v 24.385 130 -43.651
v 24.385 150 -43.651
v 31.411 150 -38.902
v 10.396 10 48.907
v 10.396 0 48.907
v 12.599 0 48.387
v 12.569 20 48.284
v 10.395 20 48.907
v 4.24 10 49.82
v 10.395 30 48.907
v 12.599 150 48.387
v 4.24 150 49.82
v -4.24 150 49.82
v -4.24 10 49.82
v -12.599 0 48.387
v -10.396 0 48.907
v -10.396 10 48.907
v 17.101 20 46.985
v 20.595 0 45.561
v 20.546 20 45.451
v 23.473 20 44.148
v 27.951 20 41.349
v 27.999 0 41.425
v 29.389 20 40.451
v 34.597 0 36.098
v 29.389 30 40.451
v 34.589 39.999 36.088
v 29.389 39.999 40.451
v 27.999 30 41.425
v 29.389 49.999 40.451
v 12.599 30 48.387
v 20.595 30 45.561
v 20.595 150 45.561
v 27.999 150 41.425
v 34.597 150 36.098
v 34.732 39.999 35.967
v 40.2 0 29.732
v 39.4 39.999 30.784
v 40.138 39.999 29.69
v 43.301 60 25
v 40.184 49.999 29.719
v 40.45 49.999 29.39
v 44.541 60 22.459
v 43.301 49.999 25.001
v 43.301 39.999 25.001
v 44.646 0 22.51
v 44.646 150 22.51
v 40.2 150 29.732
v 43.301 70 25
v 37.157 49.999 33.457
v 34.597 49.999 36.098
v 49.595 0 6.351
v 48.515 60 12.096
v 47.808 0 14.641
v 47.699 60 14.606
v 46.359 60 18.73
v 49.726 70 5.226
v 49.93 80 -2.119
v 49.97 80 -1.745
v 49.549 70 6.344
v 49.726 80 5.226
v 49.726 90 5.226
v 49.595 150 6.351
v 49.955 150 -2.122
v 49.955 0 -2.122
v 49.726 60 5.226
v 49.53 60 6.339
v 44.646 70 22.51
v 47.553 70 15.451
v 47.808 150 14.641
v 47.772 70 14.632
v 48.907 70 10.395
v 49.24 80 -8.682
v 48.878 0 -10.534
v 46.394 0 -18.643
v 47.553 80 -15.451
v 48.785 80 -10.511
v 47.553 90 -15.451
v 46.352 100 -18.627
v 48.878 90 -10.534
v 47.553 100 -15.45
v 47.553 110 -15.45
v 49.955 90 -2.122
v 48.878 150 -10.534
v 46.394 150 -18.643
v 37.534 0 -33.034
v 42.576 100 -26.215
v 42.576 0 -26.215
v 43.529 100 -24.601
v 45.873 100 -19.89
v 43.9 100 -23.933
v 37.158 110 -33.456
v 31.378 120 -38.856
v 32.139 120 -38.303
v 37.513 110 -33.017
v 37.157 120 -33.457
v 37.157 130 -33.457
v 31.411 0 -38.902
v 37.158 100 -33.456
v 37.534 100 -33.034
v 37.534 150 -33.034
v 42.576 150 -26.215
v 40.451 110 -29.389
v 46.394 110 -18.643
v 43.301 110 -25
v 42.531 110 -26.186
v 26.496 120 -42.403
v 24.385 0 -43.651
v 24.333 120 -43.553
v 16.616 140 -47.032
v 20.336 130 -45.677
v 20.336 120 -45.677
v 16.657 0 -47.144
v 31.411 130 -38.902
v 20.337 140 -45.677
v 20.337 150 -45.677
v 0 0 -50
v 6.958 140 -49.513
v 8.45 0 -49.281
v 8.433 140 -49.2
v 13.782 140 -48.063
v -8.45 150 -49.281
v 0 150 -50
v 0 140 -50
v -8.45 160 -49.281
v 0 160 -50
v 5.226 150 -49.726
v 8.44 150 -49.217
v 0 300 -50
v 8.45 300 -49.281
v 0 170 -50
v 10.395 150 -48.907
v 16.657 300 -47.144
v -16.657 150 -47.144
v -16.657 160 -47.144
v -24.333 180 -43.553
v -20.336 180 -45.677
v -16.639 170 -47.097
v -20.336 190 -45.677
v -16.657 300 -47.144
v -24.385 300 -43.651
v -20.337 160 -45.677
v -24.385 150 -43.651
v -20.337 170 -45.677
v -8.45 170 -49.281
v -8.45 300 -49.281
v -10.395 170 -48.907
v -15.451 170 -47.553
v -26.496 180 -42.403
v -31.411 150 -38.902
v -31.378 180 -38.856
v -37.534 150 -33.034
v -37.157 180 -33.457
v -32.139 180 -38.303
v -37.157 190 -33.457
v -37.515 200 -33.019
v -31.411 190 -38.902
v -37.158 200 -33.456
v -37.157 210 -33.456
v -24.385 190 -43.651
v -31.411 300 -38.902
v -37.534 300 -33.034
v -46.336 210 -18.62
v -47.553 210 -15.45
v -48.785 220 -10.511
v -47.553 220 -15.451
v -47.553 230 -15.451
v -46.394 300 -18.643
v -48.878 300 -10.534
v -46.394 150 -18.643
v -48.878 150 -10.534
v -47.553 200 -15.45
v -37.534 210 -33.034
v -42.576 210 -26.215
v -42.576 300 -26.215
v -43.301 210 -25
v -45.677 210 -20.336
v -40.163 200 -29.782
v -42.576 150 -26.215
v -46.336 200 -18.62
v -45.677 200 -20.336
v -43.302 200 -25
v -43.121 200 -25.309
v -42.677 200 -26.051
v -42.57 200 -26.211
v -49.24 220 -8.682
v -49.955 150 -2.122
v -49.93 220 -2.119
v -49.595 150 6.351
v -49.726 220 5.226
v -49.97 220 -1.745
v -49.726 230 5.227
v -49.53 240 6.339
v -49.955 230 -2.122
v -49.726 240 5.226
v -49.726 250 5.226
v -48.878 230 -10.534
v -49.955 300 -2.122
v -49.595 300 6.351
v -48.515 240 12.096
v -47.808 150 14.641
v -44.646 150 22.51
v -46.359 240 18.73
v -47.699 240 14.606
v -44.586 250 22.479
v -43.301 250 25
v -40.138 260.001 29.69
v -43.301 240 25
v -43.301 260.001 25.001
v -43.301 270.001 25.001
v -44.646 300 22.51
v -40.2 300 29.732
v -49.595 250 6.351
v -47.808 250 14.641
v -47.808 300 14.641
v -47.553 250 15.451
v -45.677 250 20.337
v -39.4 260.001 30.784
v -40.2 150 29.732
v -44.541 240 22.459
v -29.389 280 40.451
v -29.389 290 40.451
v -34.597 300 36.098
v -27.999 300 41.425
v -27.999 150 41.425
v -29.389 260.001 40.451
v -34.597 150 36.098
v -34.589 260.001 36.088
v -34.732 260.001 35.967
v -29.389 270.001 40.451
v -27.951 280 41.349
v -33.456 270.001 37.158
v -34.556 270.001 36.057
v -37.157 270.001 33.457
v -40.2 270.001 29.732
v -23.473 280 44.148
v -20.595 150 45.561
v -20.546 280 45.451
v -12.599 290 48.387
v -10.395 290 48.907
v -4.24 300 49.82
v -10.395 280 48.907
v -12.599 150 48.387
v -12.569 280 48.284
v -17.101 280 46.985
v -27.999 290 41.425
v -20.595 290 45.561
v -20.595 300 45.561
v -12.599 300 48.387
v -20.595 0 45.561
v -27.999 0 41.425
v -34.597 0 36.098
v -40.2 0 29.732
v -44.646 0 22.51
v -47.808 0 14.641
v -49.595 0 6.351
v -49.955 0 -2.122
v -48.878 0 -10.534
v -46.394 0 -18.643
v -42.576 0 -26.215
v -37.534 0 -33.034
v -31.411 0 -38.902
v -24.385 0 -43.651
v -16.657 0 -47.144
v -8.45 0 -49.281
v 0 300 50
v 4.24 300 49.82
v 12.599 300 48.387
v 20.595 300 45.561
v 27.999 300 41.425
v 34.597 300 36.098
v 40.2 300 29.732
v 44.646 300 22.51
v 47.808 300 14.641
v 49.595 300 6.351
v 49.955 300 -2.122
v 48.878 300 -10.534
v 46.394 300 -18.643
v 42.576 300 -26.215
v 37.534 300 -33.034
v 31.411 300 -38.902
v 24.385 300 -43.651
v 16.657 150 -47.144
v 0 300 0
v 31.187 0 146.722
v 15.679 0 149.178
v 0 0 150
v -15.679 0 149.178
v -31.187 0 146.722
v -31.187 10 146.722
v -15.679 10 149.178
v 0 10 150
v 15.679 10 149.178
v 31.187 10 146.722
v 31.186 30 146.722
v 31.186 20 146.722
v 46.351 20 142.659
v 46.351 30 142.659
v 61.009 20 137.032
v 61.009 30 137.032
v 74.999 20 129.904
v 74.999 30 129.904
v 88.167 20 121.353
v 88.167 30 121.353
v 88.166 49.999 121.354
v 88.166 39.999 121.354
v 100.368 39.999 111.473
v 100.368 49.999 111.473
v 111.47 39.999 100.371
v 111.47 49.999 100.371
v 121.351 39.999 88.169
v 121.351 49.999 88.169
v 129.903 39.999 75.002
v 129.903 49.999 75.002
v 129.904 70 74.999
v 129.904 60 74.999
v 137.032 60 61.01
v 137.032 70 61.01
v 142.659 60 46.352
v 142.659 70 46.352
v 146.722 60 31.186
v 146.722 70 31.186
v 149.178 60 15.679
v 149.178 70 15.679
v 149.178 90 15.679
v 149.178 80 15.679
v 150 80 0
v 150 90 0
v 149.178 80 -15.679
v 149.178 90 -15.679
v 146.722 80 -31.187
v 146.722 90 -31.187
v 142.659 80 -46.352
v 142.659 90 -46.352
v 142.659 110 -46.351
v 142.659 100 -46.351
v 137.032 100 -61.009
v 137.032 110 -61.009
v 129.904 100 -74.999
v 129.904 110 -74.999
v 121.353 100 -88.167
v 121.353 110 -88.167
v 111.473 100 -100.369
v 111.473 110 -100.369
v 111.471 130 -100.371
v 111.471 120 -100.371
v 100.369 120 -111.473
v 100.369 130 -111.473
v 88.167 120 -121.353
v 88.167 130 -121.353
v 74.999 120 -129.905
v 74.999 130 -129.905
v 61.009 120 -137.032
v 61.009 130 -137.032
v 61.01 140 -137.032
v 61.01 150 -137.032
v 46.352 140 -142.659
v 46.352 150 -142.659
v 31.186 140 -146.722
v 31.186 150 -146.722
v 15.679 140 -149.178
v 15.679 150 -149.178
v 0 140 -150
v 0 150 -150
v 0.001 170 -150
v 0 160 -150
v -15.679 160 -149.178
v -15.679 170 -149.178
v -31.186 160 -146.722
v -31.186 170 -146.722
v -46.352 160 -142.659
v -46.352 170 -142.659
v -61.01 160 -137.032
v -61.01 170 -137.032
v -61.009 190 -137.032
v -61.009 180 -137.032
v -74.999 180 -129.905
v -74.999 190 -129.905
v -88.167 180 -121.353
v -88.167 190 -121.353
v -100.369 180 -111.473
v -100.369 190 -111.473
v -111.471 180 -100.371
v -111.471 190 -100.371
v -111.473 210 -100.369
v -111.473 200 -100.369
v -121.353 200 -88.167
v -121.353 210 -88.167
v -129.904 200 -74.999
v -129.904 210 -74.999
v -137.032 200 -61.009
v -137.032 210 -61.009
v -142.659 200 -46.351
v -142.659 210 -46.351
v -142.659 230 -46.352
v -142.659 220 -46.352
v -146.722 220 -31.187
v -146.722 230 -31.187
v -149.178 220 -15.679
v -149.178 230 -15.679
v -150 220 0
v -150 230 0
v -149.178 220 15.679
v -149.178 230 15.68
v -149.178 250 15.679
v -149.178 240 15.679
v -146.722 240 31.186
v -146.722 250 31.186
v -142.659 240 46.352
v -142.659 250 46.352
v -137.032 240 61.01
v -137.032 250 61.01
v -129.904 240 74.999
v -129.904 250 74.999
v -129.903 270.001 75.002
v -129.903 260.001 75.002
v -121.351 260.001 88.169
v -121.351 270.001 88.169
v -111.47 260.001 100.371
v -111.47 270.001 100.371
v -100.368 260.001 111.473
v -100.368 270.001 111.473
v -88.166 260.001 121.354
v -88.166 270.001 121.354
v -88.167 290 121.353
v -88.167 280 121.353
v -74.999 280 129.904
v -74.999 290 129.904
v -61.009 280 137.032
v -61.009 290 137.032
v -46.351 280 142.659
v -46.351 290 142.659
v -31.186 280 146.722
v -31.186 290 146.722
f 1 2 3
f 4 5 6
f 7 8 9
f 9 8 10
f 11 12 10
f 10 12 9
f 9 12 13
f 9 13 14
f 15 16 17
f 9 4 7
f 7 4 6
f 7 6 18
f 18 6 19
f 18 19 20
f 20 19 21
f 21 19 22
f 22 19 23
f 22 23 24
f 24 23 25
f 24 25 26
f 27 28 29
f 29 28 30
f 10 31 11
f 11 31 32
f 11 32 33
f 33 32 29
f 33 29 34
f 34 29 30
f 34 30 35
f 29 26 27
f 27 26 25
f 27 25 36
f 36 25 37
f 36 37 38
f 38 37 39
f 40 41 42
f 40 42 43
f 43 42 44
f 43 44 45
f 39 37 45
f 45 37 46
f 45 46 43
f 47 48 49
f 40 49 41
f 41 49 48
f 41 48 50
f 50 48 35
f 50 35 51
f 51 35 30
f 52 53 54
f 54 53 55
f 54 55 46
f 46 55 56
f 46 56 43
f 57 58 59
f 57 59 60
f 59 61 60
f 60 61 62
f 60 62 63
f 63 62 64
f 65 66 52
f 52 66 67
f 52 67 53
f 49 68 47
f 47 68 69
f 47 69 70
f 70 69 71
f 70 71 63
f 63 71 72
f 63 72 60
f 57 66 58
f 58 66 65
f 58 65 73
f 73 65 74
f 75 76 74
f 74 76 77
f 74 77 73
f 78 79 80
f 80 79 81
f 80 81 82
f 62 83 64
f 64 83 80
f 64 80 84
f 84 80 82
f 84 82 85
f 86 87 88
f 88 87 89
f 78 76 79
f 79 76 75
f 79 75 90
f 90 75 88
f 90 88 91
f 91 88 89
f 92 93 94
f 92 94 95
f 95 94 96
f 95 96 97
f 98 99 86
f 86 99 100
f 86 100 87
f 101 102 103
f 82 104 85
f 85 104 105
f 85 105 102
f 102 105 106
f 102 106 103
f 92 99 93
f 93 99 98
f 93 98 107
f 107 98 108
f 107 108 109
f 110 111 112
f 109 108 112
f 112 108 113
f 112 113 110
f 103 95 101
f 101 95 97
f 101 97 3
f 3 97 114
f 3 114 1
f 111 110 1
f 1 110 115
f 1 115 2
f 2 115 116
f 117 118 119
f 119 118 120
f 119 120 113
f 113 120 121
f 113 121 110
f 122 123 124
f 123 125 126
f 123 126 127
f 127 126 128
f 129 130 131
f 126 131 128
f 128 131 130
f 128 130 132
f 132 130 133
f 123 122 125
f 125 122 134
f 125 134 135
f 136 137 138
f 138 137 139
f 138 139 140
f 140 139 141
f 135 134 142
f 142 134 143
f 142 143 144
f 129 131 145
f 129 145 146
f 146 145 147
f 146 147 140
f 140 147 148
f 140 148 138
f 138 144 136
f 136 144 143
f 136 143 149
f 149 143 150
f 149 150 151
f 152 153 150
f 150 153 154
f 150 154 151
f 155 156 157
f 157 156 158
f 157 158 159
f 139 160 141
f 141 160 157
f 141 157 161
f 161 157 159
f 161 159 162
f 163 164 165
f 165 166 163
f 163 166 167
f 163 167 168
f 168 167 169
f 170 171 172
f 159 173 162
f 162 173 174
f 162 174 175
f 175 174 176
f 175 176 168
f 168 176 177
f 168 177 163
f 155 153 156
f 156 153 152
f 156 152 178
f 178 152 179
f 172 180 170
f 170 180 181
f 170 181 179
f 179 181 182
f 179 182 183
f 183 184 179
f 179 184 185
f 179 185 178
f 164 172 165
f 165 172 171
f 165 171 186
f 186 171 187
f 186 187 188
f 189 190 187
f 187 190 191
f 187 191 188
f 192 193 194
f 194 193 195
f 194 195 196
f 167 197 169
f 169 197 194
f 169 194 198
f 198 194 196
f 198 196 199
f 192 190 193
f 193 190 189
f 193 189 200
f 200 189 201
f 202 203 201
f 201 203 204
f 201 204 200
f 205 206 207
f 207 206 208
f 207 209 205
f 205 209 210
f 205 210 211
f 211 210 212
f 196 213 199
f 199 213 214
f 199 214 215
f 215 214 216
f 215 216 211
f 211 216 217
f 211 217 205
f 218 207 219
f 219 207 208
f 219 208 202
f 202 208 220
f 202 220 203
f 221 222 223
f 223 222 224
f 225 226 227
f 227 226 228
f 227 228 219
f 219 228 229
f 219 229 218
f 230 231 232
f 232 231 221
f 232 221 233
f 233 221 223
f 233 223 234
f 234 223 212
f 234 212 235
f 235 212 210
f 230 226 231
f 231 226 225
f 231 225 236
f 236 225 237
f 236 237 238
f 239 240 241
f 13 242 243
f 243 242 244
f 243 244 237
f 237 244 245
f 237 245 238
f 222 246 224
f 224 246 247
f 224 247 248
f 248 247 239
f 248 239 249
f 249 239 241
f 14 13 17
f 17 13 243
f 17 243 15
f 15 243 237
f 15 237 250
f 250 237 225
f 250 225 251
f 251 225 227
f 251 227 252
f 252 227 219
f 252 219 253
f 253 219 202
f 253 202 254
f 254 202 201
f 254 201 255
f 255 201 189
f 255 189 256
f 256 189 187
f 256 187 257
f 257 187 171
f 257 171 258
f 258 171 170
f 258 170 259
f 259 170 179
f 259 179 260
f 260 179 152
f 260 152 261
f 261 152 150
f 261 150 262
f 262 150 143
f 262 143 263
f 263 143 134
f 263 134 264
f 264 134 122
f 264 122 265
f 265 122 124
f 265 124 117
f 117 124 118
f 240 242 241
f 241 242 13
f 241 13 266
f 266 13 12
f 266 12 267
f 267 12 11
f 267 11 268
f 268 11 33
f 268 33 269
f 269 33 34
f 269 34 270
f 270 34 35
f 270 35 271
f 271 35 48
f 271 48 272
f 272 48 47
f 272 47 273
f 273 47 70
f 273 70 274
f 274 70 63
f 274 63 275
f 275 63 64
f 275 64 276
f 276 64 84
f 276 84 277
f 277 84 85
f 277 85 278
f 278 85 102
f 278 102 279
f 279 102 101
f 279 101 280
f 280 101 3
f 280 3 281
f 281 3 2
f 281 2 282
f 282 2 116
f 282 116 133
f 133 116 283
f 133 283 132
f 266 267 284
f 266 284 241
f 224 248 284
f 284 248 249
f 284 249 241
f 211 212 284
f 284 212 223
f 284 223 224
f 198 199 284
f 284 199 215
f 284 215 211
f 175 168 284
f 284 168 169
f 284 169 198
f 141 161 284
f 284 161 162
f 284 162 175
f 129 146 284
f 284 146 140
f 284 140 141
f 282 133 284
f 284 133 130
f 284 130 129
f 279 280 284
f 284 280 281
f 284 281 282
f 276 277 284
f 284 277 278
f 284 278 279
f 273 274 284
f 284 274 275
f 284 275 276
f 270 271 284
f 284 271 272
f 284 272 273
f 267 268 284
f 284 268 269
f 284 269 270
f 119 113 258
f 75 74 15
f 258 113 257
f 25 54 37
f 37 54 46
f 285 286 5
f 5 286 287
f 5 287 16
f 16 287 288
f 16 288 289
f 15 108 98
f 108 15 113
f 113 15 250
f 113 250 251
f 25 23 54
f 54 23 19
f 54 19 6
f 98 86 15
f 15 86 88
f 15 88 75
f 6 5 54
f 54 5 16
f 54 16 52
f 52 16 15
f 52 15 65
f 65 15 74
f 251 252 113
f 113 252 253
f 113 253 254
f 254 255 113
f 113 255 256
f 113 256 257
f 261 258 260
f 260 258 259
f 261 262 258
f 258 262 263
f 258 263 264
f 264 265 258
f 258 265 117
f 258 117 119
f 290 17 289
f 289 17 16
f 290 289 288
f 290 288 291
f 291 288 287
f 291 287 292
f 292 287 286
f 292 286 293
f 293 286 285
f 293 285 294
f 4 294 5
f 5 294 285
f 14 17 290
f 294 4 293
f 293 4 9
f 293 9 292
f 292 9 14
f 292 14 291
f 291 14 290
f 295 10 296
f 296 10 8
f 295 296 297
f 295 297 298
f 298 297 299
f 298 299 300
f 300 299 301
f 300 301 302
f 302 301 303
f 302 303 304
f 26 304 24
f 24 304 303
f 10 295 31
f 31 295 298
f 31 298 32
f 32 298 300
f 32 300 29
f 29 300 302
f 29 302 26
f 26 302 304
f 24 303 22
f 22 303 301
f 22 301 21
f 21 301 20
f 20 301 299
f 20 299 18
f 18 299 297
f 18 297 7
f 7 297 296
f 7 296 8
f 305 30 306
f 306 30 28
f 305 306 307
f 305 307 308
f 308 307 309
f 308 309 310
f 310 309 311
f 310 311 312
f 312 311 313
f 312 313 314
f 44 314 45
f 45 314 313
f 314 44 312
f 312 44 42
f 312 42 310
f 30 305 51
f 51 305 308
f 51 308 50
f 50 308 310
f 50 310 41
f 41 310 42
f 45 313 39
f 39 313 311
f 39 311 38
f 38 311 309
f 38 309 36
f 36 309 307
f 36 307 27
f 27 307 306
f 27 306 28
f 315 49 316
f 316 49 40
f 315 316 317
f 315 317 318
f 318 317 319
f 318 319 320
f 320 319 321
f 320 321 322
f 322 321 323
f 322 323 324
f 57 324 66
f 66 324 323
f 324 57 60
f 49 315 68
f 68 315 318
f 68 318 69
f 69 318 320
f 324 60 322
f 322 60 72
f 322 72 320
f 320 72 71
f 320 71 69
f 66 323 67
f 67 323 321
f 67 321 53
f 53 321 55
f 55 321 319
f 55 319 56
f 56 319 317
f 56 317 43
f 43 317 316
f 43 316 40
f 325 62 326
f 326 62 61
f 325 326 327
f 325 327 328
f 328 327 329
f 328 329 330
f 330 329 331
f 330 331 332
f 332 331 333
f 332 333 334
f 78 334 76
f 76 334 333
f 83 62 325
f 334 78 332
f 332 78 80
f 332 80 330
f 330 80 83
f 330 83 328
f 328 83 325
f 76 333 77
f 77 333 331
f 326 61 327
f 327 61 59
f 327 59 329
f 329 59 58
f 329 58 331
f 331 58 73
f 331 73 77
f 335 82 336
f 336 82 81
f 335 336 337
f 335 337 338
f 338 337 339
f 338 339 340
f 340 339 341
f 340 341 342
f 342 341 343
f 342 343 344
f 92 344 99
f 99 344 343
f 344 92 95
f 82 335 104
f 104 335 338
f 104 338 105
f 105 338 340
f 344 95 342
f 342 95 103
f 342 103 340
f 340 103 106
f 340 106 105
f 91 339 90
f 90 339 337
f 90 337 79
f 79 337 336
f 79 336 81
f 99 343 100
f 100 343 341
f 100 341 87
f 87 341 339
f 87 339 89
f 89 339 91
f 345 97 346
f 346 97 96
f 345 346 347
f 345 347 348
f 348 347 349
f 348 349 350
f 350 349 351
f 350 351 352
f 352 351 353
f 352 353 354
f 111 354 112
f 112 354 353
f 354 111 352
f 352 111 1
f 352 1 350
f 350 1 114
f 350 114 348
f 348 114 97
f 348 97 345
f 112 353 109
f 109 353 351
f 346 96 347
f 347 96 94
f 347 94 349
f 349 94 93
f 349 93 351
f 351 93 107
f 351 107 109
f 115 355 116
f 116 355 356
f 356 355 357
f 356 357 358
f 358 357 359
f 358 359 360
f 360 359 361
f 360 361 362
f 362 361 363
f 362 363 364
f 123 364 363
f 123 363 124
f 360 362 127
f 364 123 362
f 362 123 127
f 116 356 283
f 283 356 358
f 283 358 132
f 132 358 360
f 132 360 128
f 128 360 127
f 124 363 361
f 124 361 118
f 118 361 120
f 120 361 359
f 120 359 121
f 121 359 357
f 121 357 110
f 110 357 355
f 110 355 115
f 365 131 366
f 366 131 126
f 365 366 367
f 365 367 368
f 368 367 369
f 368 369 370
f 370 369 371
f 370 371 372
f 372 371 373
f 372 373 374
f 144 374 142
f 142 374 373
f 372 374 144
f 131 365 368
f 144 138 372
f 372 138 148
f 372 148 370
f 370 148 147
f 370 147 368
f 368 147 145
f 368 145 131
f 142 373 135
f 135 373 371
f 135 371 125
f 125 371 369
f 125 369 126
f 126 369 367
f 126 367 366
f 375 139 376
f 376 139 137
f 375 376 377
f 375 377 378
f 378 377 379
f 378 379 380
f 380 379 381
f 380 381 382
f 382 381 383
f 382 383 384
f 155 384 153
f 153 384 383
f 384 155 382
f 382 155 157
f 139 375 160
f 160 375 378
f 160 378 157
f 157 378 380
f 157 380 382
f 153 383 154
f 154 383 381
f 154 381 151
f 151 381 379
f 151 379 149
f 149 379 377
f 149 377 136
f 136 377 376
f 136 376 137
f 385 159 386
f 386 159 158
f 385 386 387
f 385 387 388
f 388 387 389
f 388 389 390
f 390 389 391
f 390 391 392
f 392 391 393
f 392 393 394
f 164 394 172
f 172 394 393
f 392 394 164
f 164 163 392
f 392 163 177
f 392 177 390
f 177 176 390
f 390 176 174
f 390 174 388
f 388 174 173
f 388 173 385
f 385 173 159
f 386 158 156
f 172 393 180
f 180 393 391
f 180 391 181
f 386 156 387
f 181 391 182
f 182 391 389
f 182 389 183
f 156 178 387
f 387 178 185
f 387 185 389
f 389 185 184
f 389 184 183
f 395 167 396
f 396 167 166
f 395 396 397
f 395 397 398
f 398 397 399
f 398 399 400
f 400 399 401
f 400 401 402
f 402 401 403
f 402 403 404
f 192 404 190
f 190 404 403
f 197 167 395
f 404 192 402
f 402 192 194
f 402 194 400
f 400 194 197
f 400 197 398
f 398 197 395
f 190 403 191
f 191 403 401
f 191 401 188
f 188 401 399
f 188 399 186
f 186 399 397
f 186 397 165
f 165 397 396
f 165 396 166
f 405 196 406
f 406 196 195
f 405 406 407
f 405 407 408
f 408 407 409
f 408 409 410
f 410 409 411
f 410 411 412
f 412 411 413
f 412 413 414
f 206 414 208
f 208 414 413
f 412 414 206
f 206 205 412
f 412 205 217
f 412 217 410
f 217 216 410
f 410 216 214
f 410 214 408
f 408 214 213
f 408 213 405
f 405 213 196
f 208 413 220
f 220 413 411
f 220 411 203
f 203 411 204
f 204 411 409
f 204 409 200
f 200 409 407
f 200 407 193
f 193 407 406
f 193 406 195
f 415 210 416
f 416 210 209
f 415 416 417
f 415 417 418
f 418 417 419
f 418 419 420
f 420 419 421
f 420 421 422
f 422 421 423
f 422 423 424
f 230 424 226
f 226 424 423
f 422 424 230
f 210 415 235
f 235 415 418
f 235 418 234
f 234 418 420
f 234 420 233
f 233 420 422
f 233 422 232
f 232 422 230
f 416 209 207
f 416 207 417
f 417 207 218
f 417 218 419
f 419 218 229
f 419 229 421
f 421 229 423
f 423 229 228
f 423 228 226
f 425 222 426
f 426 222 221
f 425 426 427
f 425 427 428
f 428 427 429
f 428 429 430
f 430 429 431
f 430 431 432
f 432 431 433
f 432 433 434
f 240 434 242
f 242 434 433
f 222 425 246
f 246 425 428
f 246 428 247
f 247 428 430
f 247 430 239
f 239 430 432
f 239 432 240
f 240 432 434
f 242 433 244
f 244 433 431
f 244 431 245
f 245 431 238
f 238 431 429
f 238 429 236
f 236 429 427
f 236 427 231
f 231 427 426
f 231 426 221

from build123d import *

# Parameters (mm, degrees)
SKETCH_1_R      = 50
EXTRUDE_1_DEPTH = 300
EXTRUDE_2_DEPTH = 10


with BuildPart() as part:
    # 草圖1 → 填料-伸長1 (new body)
    with BuildSketch(Plane(origin=(0, 0, 0), x_dir=(1, 0, 0), z_dir=(0, 1, 0))):
        with Locations(Location((0, 0, 0), (0, 0, 270))):
            Circle(SKETCH_1_R)
    extrude(amount=EXTRUDE_1_DEPTH)

    # 草圖7 → 填料-伸長2 (add)
    with BuildSketch(Plane(origin=(0, 0, 0), x_dir=(1, 0, 0), z_dir=(0, 1, 0))):
        with BuildLine():
            Line((-10.395584541, -48.907380037), (-31.186753623, -146.72214011))
            ThreePointArc((-31.186753623, -146.72214011), (0, -150), (31.186753623, -146.72214011))
            Line((31.186753623, -146.72214011), (10.395584541, -48.907380037))
            ThreePointArc((10.395584541, -48.907380037), (0, -50), (-10.395584541, -48.907380037))
        make_face()
    extrude(amount=EXTRUDE_2_DEPTH)

    # 曲線導出複製排列1: read off the stored shape, not the designer's step
    # 曲線導出複製排列1: loft between two sections, ruled curve by curve
    pattern_curve_1_from = [
        Edge.make_three_point_arc((88.166854209, 29.999606099, 121.353229236), (61.00944139, 29.999627457, 137.03228839), (31.185623499, 29.999648814, 146.722378865)),
        Edge.make_line((31.185623499, 29.999648814, 146.722378865), (10.3952123, 29.999634576, 48.907459157)),
        Edge.make_line((29.388954737, 29.999620338, 40.451073403), (88.166854209, 29.999606099, 121.353229236)),
        Edge.make_line((29.388954737, 29.999620338, 40.451073403), (10.3952123, 29.999634576, 48.907459157)),
    ]
    pattern_curve_1_to = [
        Edge.make_three_point_arc((88.166847953, 19.999606099, 121.353232022), (61.009435133, 19.999627457, 137.032291175), (31.185617243, 19.999648814, 146.72238165)),
        Edge.make_line((31.185617243, 19.999648814, 146.72238165), (10.395205748, 19.999634576, 48.90746055)),
        Edge.make_line((29.388949318, 19.999620338, 40.451077341), (88.166847953, 19.999606099, 121.353232022)),
        Edge.make_line((29.388949318, 19.999620338, 40.451077341), (10.395205748, 19.999634576, 48.90746055)),
    ]
    pattern_curve_1 = Solid(Shell([*[Face.make_surface_from_curves(pattern_curve_1_from[k], pattern_curve_1_to[k]) for k in range(4)], Face(Wire(pattern_curve_1_from)), Face(Wire(pattern_curve_1_to))]))
    add(pattern_curve_1)

    # Pattern Curve 1 2: loft between two sections, ruled curve by curve
    pattern_curve_1_2_from = [
        Edge.make_three_point_arc((129.902850728, 49.999428516, 75.001657031), (111.470442269, 49.999387758, 100.371014244), (88.166240206, 49.999347, 121.353676925)),
        Edge.make_line((88.166240206, 49.999347, 121.353676925), (29.388739308, 49.999374172, 40.451229918)),
        Edge.make_line((43.300946766, 49.999401344, 25.000560177), (129.902850728, 49.999428516, 75.001657031)),
        Edge.make_line((43.300946766, 49.999401344, 25.000560177), (29.388739308, 49.999374172, 40.451229918)),
    ]
    pattern_curve_1_2_to = [
        Edge.make_three_point_arc((129.902859473, 39.999428516, 75.001647319), (111.470451014, 39.999387758, 100.371004532), (88.166248951, 39.999347, 121.353667213)),
        Edge.make_line((88.166248951, 39.999347, 121.353667213), (29.38874965, 39.999374172, 40.451222404)),
        Edge.make_line((43.300953158, 39.999401344, 25.000549106), (129.902859473, 39.999428516, 75.001647319)),
        Edge.make_line((43.300953158, 39.999401344, 25.000549106), (29.38874965, 39.999374172, 40.451222404)),
    ]
    pattern_curve_1_2 = Solid(Shell([*[Face.make_surface_from_curves(pattern_curve_1_2_from[k], pattern_curve_1_2_to[k]) for k in range(4)], Face(Wire(pattern_curve_1_2_from)), Face(Wire(pattern_curve_1_2_to))]))
    add(pattern_curve_1_2)

    # Pattern Curve 1 3: loft between two sections, ruled curve by curve
    pattern_curve_1_3_from = [
        Edge.make_three_point_arc((149.178354042, 70.000263463, 15.678583971), (142.658690297, 70.000228957, 46.351894057), (129.904157085, 70.00019445, 74.999404412)),
        Edge.make_line((129.904157085, 70.00019445, 74.999404412), (43.301381423, 70.000217454, 24.999807336)),
        Edge.make_line((49.726118022, 70.000240459, 5.226201913), (149.178354042, 70.000263463, 15.678583971)),
        Edge.make_line((49.726118022, 70.000240459, 5.226201913), (43.301381423, 70.000217454, 24.999807336)),
    ]
    pattern_curve_1_3_to = [
        Edge.make_three_point_arc((149.178357461, 60.000263463, 15.678573448), (142.658693716, 60.000228957, 46.351883534), (129.904160504, 60.00019445, 74.999393888)),
        Edge.make_line((129.904160504, 60.00019445, 74.999393888), (43.301386835, 60.000217454, 24.999797963)),
        Edge.make_line((49.726119154, 60.000240459, 5.226191149), (149.178357461, 60.000263463, 15.678573448)),
        Edge.make_line((49.726119154, 60.000240459, 5.226191149), (43.301386835, 60.000217454, 24.999797963)),
    ]
    pattern_curve_1_3 = Solid(Shell([*[Face.make_surface_from_curves(pattern_curve_1_3_from[k], pattern_curve_1_3_to[k]) for k in range(4)], Face(Wire(pattern_curve_1_3_from)), Face(Wire(pattern_curve_1_3_to))]))
    add(pattern_curve_1_3)

    # Pattern Curve 1 4: loft between two sections, ruled curve by curve
    pattern_curve_1_4_from = [
        Edge.make_three_point_arc((142.658547258, 89.999899948, -46.352339417), (149.178307393, 89.999923711, -15.679049819), (149.178259624, 89.999947474, 15.679489161)),
        Edge.make_line((149.178259624, 89.999947474, 15.679489161), (49.726087586, 89.999931632, 5.226491501)),
        Edge.make_line((47.552847048, 89.99991579, -15.450784368), (142.658547258, 89.999899948, -46.352339417)),
        Edge.make_line((47.552847048, 89.99991579, -15.450784368), (49.726087586, 89.999931632, 5.226491501)),
    ]
    pattern_curve_1_4_to = [
        Edge.make_three_point_arc((142.658548055, 79.999899948, -46.35233184), (149.17830819, 79.999923711, -15.679042242), (149.17826042, 79.999947474, 15.679496739)),
        Edge.make_line((149.17826042, 79.999947474, 15.679496739), (49.726086807, 79.999931632, 5.226498913)),
        Edge.make_line((47.552849352, 79.99991579, -15.45077728), (142.658548055, 79.999899948, -46.35233184)),
        Edge.make_line((47.552849352, 79.99991579, -15.45077728), (49.726086807, 79.999931632, 5.226498913)),
    ]
    pattern_curve_1_4 = Solid(Shell([*[Face.make_surface_from_curves(pattern_curve_1_4_from[k], pattern_curve_1_4_to[k]) for k in range(4)], Face(Wire(pattern_curve_1_4_from)), Face(Wire(pattern_curve_1_4_to))]))
    add(pattern_curve_1_4)

    # Pattern Curve 1 5: loft between two sections, ruled curve by curve
    pattern_curve_1_5_from = [
        Edge.make_three_point_arc((111.472538635, 109.99969912, -100.368677975), (129.904422692, 109.99961853, -74.99893976), (142.658860691, 109.99953794, -46.351387014)),
        Edge.make_line((142.658860691, 109.99953794, -46.351387014), (47.552957068, 109.999591667, -15.450445758)),
        Edge.make_line((37.157525485, 109.999645394, -33.456214667), (111.472538635, 109.99969912, -100.368677975)),
        Edge.make_line((37.157525485, 109.999645394, -33.456214667), (47.552957068, 109.999591667, -15.450445758)),
    ]
    pattern_curve_1_5_to = [
        Edge.make_three_point_arc((111.472525715, 99.99969912, -100.368700354), (129.904409772, 99.99961853, -74.998962139), (142.658847771, 99.99953794, -46.351409393)),
        Edge.make_line((142.658847771, 99.99953794, -46.351409393), (47.552949257, 99.999591667, -15.450469798)),
        Edge.make_line((37.157508572, 99.999645394, -33.456233451), (111.472525715, 99.99969912, -100.368700354)),
        Edge.make_line((37.157508572, 99.999645394, -33.456233451), (47.552949257, 99.999591667, -15.450469798)),
    ]
    pattern_curve_1_5 = Solid(Shell([*[Face.make_surface_from_curves(pattern_curve_1_5_from[k], pattern_curve_1_5_to[k]) for k in range(4)], Face(Wire(pattern_curve_1_5_from)), Face(Wire(pattern_curve_1_5_to))]))
    add(pattern_curve_1_5)

    # Pattern Curve 1 6: loft between two sections, ruled curve by curve
    pattern_curve_1_6_from = [
        Edge.make_three_point_arc((61.009186737, 130.000434016, -137.032403499), (88.166627272, 130.000457764, -121.353392352), (111.470762857, 130.000481511, -100.370655837)),
        Edge.make_line((111.470762857, 130.000481511, -100.370655837), (37.156918022, 130.000465679, -33.456889322)),
        Edge.make_line((20.336390828, 130.000449848, -45.67746937), (61.009186737, 130.000434016, -137.032403499)),
        Edge.make_line((20.336390828, 130.000449848, -45.67746937), (37.156918022, 130.000465679, -33.456889322)),
    ]
    pattern_curve_1_6_to = [
        Edge.make_three_point_arc((61.009192897, 120.000434016, -137.032399023), (88.166633433, 120.000457764, -121.353387877), (111.470769017, 120.000481511, -100.370651362)),
        Edge.make_line((111.470769017, 120.000481511, -100.370651362), (37.156923006, 120.00046568, -33.456883787)),
        Edge.make_line((20.336397632, 120.000449848, -45.677466341), (61.009192897, 120.000434016, -137.032399023)),
        Edge.make_line((20.336397632, 120.000449848, -45.677466341), (37.156923006, 120.00046568, -33.456883787)),
    ]
    pattern_curve_1_6 = Solid(Shell([*[Face.make_surface_from_curves(pattern_curve_1_6_from[k], pattern_curve_1_6_to[k]) for k in range(4)], Face(Wire(pattern_curve_1_6_from)), Face(Wire(pattern_curve_1_6_to))]))
    add(pattern_curve_1_6)

    # Pattern Curve 1 7: loft between two sections, ruled curve by curve
    pattern_curve_1_7_from = [
        Edge.make_three_point_arc((-0.000487877, 150.00018683, -149.999997716), (31.186276641, 150.000152588, -146.722241495), (61.010051692, 150.000118346, -137.032019169)),
        Edge.make_line((61.010051692, 150.000118346, -137.032019169), (20.336690129, 150.000141174, -45.677336116)),
        Edge.make_line((-0.000155466, 150.000164002, -50), (-0.000487877, 150.00018683, -149.999997716)),
        Edge.make_line((-0.000155466, 150.000164002, -50), (20.336690129, 150.000141174, -45.677336116)),
    ]
    pattern_curve_1_7_to = [
        Edge.make_three_point_arc((-0.000498617, 140.00018683, -149.999999999), (31.186265902, 140.000152588, -146.722243778), (61.010040952, 140.000118346, -137.032021451)),
        Edge.make_line((61.010040952, 140.000118346, -137.032021451), (20.336680317, 140.000141174, -45.677340484)),
        Edge.make_line((-0.000166206, 140.000164002, -50), (-0.000498617, 140.00018683, -149.999999999)),
        Edge.make_line((-0.000166206, 140.000164002, -50), (20.336680317, 140.000141174, -45.677340484)),
    ]
    pattern_curve_1_7 = Solid(Shell([*[Face.make_surface_from_curves(pattern_curve_1_7_from[k], pattern_curve_1_7_to[k]) for k in range(4)], Face(Wire(pattern_curve_1_7_from)), Face(Wire(pattern_curve_1_7_to))]))
    add(pattern_curve_1_7)

    # Pattern Curve 1 8: loft between two sections, ruled curve by curve
    pattern_curve_1_8_from = [
        Edge.make_three_point_arc((-61.010030212, 169.999881654, -137.032023734), (-31.186255162, 169.999847412, -146.72224606), (0.000509357, 169.99981317, -150.000002282)),
        Edge.make_line((0.000509357, 169.99981317, -150.000002282), (0.000176945, 169.999835998, -50)),
        Edge.make_line((-20.336670506, 169.999858826, -45.677344852), (-61.010030212, 169.999881654, -137.032023734)),
        Edge.make_line((-20.336670506, 169.999858826, -45.677344852), (0.000176945, 169.999835998, -50)),
    ]
    pattern_curve_1_8_to = [
        Edge.make_three_point_arc((-61.010040952, 159.999881654, -137.032021451), (-31.186265902, 159.999847412, -146.722243778), (0.000498617, 159.99981317, -149.999999999)),
        Edge.make_line((0.000498617, 159.99981317, -149.999999999), (0.000166206, 159.999835998, -50)),
        Edge.make_line((-20.336680317, 159.999858826, -45.677340484), (-61.010040952, 159.999881654, -137.032021451)),
        Edge.make_line((-20.336680317, 159.999858826, -45.677340484), (0.000166206, 159.999835998, -50)),
    ]
    pattern_curve_1_8 = Solid(Shell([*[Face.make_surface_from_curves(pattern_curve_1_8_from[k], pattern_curve_1_8_to[k]) for k in range(4)], Face(Wire(pattern_curve_1_8_from)), Face(Wire(pattern_curve_1_8_to))]))
    add(pattern_curve_1_8)

    # Pattern Curve 1 9: loft between two sections, ruled curve by curve
    pattern_curve_1_9_from = [
        Edge.make_three_point_arc((-111.470775177, 189.999518489, -100.370646886), (-88.166639593, 189.999542236, -121.353383401), (-61.009199058, 189.999565984, -137.032394547)),
        Edge.make_line((-61.009199058, 189.999565984, -137.032394547), (-20.336404437, 189.999550152, -45.677463312)),
        Edge.make_line((-37.15692799, 189.99953432, -33.456878252), (-111.470775177, 189.999518489, -100.370646886)),
        Edge.make_line((-37.15692799, 189.99953432, -33.456878252), (-20.336404437, 189.999550152, -45.677463312)),
    ]
    pattern_curve_1_9_to = [
        Edge.make_three_point_arc((-111.470769017, 179.999518489, -100.370651362), (-88.166633433, 179.999542236, -121.353387877), (-61.009192897, 179.999565984, -137.032399023)),
        Edge.make_line((-61.009192897, 179.999565984, -137.032399023), (-20.336397632, 179.999550152, -45.677466341)),
        Edge.make_line((-37.156923006, 179.99953432, -33.456883787), (-111.470769017, 179.999518489, -100.370651362)),
        Edge.make_line((-37.156923006, 179.99953432, -33.456883787), (-20.336397632, 179.999550152, -45.677466341)),
    ]
    pattern_curve_1_9 = Solid(Shell([*[Face.make_surface_from_curves(pattern_curve_1_9_from[k], pattern_curve_1_9_to[k]) for k in range(4)], Face(Wire(pattern_curve_1_9_from)), Face(Wire(pattern_curve_1_9_to))]))
    add(pattern_curve_1_9)

    # Pattern Curve 1 10: loft between two sections, ruled curve by curve
    pattern_curve_1_10_from = [
        Edge.make_three_point_arc((-142.65883485, 210.000462059, -46.351431772), (-129.904396851, 210.00038147, -74.998984518), (-111.472512795, 210.00030088, -100.368722733)),
        Edge.make_line((-111.472512795, 210.00030088, -100.368722733), (-37.157491659, 210.000354606, -33.456252235)),
        Edge.make_line((-47.552941446, 210.000408333, -15.450493837), (-142.65883485, 210.000462059, -46.351431772)),
        Edge.make_line((-47.552941446, 210.000408333, -15.450493837), (-37.157491659, 210.000354606, -33.456252235)),
    ]
    pattern_curve_1_10_to = [
        Edge.make_three_point_arc((-142.658847771, 200.00046206, -46.351409393), (-129.904409772, 200.00038147, -74.998962139), (-111.472525715, 200.00030088, -100.368700354)),
        Edge.make_line((-111.472525715, 200.00030088, -100.368700354), (-37.157508572, 200.000354606, -33.456233451)),
        Edge.make_line((-47.552949257, 200.000408333, -15.450469798), (-142.658847771, 200.00046206, -46.351409393)),
        Edge.make_line((-47.552949257, 200.000408333, -15.450469798), (-37.157508572, 200.000354606, -33.456233451)),
    ]
    pattern_curve_1_10 = Solid(Shell([*[Face.make_surface_from_curves(pattern_curve_1_10_from[k], pattern_curve_1_10_to[k]) for k in range(4)], Face(Wire(pattern_curve_1_10_from)), Face(Wire(pattern_curve_1_10_to))]))
    add(pattern_curve_1_10)

    # Pattern Curve 1 11: loft between two sections, ruled curve by curve
    pattern_curve_1_11_from = [
        Edge.make_three_point_arc((-149.178261217, 230.000052526, 15.679504316), (-149.178308986, 230.000076289, -15.679034664), (-142.658548851, 230.000100052, -46.352324262)),
        Edge.make_line((-142.658548851, 230.000100052, -46.352324262), (-47.552851655, 230.00008421, -15.450770192)),
        Edge.make_line((-49.726086028, 230.000068368, 5.226506325), (-149.178261217, 230.000052526, 15.679504316)),
        Edge.make_line((-49.726086028, 230.000068368, 5.226506325), (-47.552851655, 230.00008421, -15.450770192)),
    ]
    pattern_curve_1_11_to = [
        Edge.make_three_point_arc((-149.17826042, 220.000052526, 15.679496739), (-149.17830819, 220.000076289, -15.679042242), (-142.658548055, 220.000100052, -46.35233184)),
        Edge.make_line((-142.658548055, 220.000100052, -46.35233184), (-47.552849352, 220.00008421, -15.45077728)),
        Edge.make_line((-49.726086807, 220.000068368, 5.226498913), (-149.17826042, 220.000052526, 15.679496739)),
        Edge.make_line((-49.726086807, 220.000068368, 5.226498913), (-47.552849352, 220.00008421, -15.45077728)),
    ]
    pattern_curve_1_11 = Solid(Shell([*[Face.make_surface_from_curves(pattern_curve_1_11_from[k], pattern_curve_1_11_to[k]) for k in range(4)], Face(Wire(pattern_curve_1_11_from)), Face(Wire(pattern_curve_1_11_to))]))
    add(pattern_curve_1_11)

    # Pattern Curve 1 12: loft between two sections, ruled curve by curve
    pattern_curve_1_12_from = [
        Edge.make_three_point_arc((-129.904163923, 249.99980555, 74.999383365), (-142.658697135, 249.999771043, 46.351873011), (-149.17836088, 249.999736537, 15.678562925)),
        Edge.make_line((-149.17836088, 249.999736537, 15.678562925), (-49.726120285, 249.999759541, 5.226180386)),
        Edge.make_line((-43.301392246, 249.999782546, 24.99978859), (-129.904163923, 249.99980555, 74.999383365)),
        Edge.make_line((-43.301392246, 249.999782546, 24.99978859), (-49.726120285, 249.999759541, 5.226180386)),
    ]
    pattern_curve_1_12_to = [
        Edge.make_three_point_arc((-129.904160504, 239.99980555, 74.999393888), (-142.658693716, 239.999771043, 46.351883534), (-149.178357461, 239.999736537, 15.678573448)),
        Edge.make_line((-149.178357461, 239.999736537, 15.678573448), (-49.726119154, 239.999759541, 5.226191149)),
        Edge.make_line((-43.301386835, 239.999782546, 24.999797963), (-129.904160504, 239.99980555, 74.999393888)),
        Edge.make_line((-43.301386835, 239.999782546, 24.999797963), (-49.726119154, 239.999759541, 5.226191149)),
    ]
    pattern_curve_1_12 = Solid(Shell([*[Face.make_surface_from_curves(pattern_curve_1_12_from[k], pattern_curve_1_12_to[k]) for k in range(4)], Face(Wire(pattern_curve_1_12_from)), Face(Wire(pattern_curve_1_12_to))]))
    add(pattern_curve_1_12)

    # Pattern Curve 1 13: loft between two sections, ruled curve by curve
    pattern_curve_1_13_from = [
        Edge.make_three_point_arc((-88.166257696, 270.000653, 121.3536575), (-111.470459759, 270.000612242, 100.37099482), (-129.902868218, 270.000571484, 75.001637607)),
        Edge.make_line((-129.902868218, 270.000571484, 75.001637607), (-43.30095955, 270.000598656, 25.000538036)),
        Edge.make_line((-29.388759992, 270.000625828, 40.45121489), (-88.166257696, 270.000653, 121.3536575)),
        Edge.make_line((-29.388759992, 270.000625828, 40.45121489), (-43.30095955, 270.000598656, 25.000538036)),
    ]
    pattern_curve_1_13_to = [
        Edge.make_three_point_arc((-88.166248951, 260.000653, 121.353667213), (-111.470451014, 260.000612242, 100.371004532), (-129.902859473, 260.000571484, 75.001647319)),
        Edge.make_line((-129.902859473, 260.000571484, 75.001647319), (-43.300953158, 260.000598656, 25.000549106)),
        Edge.make_line((-29.38874965, 260.000625828, 40.451222404), (-88.166248951, 260.000653, 121.353667213)),
        Edge.make_line((-29.38874965, 260.000625828, 40.451222404), (-43.300953158, 260.000598656, 25.000549106)),
    ]
    pattern_curve_1_13 = Solid(Shell([*[Face.make_surface_from_curves(pattern_curve_1_13_from[k], pattern_curve_1_13_to[k]) for k in range(4)], Face(Wire(pattern_curve_1_13_from)), Face(Wire(pattern_curve_1_13_to))]))
    add(pattern_curve_1_13)

    # Pattern Curve 1 14: loft between two sections, ruled curve by curve
    pattern_curve_1_14_from = [
        Edge.make_three_point_arc((-31.185610987, 290.000351186, 146.722384436), (-61.009428877, 290.000372543, 137.03229396), (-88.166841697, 290.000393901, 121.353234807)),
        Edge.make_line((-88.166841697, 290.000393901, 121.353234807), (-29.388943898, 290.000379662, 40.451081278)),
        Edge.make_line((-10.395199196, 290.000365424, 48.907461943), (-31.185610987, 290.000351186, 146.722384436)),
        Edge.make_line((-10.395199196, 290.000365424, 48.907461943), (-29.388943898, 290.000379662, 40.451081278)),
    ]
    pattern_curve_1_14_to = [
        Edge.make_three_point_arc((-31.185617243, 280.000351186, 146.72238165), (-61.009435133, 280.000372543, 137.032291175), (-88.166847953, 280.000393901, 121.353232022)),
        Edge.make_line((-88.166847953, 280.000393901, 121.353232022), (-29.388949318, 280.000379662, 40.451077341)),
        Edge.make_line((-10.395205748, 280.000365424, 48.90746055), (-31.185617243, 280.000351186, 146.72238165)),
        Edge.make_line((-10.395205748, 280.000365424, 48.90746055), (-29.388949318, 280.000379662, 40.451077341)),
    ]
    pattern_curve_1_14 = Solid(Shell([*[Face.make_surface_from_curves(pattern_curve_1_14_from[k], pattern_curve_1_14_to[k]) for k in range(4)], Face(Wire(pattern_curve_1_14_from)), Face(Wire(pattern_curve_1_14_to))]))
    add(pattern_curve_1_14)


solid = part.part
